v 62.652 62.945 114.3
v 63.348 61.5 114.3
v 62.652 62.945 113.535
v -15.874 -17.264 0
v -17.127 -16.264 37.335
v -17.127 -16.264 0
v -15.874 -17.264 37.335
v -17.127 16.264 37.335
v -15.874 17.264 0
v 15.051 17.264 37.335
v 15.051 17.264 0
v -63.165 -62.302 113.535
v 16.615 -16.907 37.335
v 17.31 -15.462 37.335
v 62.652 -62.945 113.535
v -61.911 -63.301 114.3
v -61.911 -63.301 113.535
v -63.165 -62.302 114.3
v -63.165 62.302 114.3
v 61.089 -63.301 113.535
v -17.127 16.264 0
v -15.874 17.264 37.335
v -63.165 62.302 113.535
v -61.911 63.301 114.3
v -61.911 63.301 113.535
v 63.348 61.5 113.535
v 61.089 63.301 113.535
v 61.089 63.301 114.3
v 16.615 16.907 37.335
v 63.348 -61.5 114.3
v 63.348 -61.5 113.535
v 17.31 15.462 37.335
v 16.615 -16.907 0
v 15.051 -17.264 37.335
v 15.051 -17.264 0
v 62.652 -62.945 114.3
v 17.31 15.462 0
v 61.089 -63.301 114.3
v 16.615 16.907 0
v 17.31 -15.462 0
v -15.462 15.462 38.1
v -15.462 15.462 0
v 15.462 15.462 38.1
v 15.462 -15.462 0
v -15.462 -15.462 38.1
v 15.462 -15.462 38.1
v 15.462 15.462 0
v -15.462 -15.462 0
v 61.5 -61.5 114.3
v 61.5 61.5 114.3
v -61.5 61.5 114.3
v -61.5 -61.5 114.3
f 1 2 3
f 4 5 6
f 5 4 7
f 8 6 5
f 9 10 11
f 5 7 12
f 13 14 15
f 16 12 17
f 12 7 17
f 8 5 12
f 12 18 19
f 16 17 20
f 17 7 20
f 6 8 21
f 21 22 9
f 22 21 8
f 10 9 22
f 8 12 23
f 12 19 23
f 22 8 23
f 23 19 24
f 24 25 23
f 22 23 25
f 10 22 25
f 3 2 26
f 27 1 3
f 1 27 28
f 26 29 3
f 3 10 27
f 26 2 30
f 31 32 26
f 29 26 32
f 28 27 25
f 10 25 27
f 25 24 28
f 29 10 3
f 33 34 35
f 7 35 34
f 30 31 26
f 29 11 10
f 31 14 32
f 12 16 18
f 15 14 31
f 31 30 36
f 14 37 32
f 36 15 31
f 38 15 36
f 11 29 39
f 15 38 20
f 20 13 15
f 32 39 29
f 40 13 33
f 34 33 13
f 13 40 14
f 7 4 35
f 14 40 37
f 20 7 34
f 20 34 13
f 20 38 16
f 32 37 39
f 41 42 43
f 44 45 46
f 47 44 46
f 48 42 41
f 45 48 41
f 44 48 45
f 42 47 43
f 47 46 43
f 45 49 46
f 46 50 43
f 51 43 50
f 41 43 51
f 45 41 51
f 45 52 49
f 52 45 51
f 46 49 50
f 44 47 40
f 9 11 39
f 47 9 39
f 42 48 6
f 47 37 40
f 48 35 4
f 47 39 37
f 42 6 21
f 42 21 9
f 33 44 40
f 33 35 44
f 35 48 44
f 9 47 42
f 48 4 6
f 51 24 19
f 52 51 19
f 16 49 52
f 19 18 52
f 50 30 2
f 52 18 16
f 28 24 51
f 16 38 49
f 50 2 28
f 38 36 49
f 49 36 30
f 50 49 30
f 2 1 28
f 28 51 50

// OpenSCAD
/**
 * A square funnel, originally for a bird feeder shaped like a barn where you added birdseed through the chimney.
 */

// I took measurements in inches, so the 25.4 is for converting to mm.

bottom_height = 1.5 * 25.4;
bottom_width = 1.375 * 25.4;
bottom_depth = 1.375 * 25.4;

top_height = 3 * 25.4;
top_width = 5 * 25.4;

funnel_thickness = 2;
corner_radius = 2;

difference() {
	minkowski() {
		union() {
			linear_extrude( bottom_height ) {
				square( [ bottom_width - ( funnel_thickness * 2 ), bottom_depth - ( funnel_thickness * 2 ) ], center = true );
			}

			translate( [ 0, 0, bottom_height ] ) {
				pyramid( base_width = top_width - ( funnel_thickness * 2 ), top_width = bottom_width - ( funnel_thickness * 2 ), height = top_height );
			}
		}

		sphere( r = corner_radius ); // This makes the funnel corner_radius mm thicker everywhere.
	}

	// Remove the inside of the bottom portion.
	linear_extrude( bottom_height ) {
		square(
			[ bottom_width - ( funnel_thickness - corner_radius ) * 2 - ( funnel_thickness * 2 ), bottom_depth - ( funnel_thickness - corner_radius ) * 2 - ( funnel_thickness * 2 ) ], center = true );
	}

	// Remove the inside of the top portion.
	translate( [ 0, 0, bottom_height ] ) {
		pyramid( base_width = top_width - ( 2 * ( funnel_thickness - corner_radius ) ) - ( funnel_thickness * 2 ), top_width = bottom_width - ( 2 * ( funnel_thickness - corner_radius ) ) - ( funnel_thickness * 2 ), height = top_height );
	}

	// Cut off the bottom.
	translate( [ 0, 0, -100 ] ) linear_extrude( 100 ) {
		square( [ bottom_width * 2, bottom_width * 2 ], center = true );
	}

	// Cut off the top.
	translate( [ 0, 0, bottom_height + top_height ] ) linear_extrude( 100 ) {
		square( [ top_width * 2, top_width * 2 ], center = true );
	}
}

module pyramid( base_width, top_width, height ) {
	polyhedron(
		points = [
			[ top_width / 2, top_width / 2, 0 ],
			[ -top_width / 2, top_width / 2, 0 ],
			[ -top_width / 2, -top_width / 2, 0 ],
			[ top_width / 2, -top_width / 2, 0 ],

			[ base_width / 2, base_width / 2, height ],
			[ -base_width / 2, base_width / 2, height ],
			[ -base_width / 2, -base_width / 2, height ],
			[ base_width / 2, -base_width / 2, height ],
		],
		faces = [
			[ 0, 4, 5, 1 ],
			[ 1, 5, 6, 2 ],
			[ 2, 6, 7, 3 ],
			[ 3, 7, 4, 0 ],

			[ 7, 6, 5, 4 ],
			[ 0, 1, 2, 3 ],
		]
	);
}
